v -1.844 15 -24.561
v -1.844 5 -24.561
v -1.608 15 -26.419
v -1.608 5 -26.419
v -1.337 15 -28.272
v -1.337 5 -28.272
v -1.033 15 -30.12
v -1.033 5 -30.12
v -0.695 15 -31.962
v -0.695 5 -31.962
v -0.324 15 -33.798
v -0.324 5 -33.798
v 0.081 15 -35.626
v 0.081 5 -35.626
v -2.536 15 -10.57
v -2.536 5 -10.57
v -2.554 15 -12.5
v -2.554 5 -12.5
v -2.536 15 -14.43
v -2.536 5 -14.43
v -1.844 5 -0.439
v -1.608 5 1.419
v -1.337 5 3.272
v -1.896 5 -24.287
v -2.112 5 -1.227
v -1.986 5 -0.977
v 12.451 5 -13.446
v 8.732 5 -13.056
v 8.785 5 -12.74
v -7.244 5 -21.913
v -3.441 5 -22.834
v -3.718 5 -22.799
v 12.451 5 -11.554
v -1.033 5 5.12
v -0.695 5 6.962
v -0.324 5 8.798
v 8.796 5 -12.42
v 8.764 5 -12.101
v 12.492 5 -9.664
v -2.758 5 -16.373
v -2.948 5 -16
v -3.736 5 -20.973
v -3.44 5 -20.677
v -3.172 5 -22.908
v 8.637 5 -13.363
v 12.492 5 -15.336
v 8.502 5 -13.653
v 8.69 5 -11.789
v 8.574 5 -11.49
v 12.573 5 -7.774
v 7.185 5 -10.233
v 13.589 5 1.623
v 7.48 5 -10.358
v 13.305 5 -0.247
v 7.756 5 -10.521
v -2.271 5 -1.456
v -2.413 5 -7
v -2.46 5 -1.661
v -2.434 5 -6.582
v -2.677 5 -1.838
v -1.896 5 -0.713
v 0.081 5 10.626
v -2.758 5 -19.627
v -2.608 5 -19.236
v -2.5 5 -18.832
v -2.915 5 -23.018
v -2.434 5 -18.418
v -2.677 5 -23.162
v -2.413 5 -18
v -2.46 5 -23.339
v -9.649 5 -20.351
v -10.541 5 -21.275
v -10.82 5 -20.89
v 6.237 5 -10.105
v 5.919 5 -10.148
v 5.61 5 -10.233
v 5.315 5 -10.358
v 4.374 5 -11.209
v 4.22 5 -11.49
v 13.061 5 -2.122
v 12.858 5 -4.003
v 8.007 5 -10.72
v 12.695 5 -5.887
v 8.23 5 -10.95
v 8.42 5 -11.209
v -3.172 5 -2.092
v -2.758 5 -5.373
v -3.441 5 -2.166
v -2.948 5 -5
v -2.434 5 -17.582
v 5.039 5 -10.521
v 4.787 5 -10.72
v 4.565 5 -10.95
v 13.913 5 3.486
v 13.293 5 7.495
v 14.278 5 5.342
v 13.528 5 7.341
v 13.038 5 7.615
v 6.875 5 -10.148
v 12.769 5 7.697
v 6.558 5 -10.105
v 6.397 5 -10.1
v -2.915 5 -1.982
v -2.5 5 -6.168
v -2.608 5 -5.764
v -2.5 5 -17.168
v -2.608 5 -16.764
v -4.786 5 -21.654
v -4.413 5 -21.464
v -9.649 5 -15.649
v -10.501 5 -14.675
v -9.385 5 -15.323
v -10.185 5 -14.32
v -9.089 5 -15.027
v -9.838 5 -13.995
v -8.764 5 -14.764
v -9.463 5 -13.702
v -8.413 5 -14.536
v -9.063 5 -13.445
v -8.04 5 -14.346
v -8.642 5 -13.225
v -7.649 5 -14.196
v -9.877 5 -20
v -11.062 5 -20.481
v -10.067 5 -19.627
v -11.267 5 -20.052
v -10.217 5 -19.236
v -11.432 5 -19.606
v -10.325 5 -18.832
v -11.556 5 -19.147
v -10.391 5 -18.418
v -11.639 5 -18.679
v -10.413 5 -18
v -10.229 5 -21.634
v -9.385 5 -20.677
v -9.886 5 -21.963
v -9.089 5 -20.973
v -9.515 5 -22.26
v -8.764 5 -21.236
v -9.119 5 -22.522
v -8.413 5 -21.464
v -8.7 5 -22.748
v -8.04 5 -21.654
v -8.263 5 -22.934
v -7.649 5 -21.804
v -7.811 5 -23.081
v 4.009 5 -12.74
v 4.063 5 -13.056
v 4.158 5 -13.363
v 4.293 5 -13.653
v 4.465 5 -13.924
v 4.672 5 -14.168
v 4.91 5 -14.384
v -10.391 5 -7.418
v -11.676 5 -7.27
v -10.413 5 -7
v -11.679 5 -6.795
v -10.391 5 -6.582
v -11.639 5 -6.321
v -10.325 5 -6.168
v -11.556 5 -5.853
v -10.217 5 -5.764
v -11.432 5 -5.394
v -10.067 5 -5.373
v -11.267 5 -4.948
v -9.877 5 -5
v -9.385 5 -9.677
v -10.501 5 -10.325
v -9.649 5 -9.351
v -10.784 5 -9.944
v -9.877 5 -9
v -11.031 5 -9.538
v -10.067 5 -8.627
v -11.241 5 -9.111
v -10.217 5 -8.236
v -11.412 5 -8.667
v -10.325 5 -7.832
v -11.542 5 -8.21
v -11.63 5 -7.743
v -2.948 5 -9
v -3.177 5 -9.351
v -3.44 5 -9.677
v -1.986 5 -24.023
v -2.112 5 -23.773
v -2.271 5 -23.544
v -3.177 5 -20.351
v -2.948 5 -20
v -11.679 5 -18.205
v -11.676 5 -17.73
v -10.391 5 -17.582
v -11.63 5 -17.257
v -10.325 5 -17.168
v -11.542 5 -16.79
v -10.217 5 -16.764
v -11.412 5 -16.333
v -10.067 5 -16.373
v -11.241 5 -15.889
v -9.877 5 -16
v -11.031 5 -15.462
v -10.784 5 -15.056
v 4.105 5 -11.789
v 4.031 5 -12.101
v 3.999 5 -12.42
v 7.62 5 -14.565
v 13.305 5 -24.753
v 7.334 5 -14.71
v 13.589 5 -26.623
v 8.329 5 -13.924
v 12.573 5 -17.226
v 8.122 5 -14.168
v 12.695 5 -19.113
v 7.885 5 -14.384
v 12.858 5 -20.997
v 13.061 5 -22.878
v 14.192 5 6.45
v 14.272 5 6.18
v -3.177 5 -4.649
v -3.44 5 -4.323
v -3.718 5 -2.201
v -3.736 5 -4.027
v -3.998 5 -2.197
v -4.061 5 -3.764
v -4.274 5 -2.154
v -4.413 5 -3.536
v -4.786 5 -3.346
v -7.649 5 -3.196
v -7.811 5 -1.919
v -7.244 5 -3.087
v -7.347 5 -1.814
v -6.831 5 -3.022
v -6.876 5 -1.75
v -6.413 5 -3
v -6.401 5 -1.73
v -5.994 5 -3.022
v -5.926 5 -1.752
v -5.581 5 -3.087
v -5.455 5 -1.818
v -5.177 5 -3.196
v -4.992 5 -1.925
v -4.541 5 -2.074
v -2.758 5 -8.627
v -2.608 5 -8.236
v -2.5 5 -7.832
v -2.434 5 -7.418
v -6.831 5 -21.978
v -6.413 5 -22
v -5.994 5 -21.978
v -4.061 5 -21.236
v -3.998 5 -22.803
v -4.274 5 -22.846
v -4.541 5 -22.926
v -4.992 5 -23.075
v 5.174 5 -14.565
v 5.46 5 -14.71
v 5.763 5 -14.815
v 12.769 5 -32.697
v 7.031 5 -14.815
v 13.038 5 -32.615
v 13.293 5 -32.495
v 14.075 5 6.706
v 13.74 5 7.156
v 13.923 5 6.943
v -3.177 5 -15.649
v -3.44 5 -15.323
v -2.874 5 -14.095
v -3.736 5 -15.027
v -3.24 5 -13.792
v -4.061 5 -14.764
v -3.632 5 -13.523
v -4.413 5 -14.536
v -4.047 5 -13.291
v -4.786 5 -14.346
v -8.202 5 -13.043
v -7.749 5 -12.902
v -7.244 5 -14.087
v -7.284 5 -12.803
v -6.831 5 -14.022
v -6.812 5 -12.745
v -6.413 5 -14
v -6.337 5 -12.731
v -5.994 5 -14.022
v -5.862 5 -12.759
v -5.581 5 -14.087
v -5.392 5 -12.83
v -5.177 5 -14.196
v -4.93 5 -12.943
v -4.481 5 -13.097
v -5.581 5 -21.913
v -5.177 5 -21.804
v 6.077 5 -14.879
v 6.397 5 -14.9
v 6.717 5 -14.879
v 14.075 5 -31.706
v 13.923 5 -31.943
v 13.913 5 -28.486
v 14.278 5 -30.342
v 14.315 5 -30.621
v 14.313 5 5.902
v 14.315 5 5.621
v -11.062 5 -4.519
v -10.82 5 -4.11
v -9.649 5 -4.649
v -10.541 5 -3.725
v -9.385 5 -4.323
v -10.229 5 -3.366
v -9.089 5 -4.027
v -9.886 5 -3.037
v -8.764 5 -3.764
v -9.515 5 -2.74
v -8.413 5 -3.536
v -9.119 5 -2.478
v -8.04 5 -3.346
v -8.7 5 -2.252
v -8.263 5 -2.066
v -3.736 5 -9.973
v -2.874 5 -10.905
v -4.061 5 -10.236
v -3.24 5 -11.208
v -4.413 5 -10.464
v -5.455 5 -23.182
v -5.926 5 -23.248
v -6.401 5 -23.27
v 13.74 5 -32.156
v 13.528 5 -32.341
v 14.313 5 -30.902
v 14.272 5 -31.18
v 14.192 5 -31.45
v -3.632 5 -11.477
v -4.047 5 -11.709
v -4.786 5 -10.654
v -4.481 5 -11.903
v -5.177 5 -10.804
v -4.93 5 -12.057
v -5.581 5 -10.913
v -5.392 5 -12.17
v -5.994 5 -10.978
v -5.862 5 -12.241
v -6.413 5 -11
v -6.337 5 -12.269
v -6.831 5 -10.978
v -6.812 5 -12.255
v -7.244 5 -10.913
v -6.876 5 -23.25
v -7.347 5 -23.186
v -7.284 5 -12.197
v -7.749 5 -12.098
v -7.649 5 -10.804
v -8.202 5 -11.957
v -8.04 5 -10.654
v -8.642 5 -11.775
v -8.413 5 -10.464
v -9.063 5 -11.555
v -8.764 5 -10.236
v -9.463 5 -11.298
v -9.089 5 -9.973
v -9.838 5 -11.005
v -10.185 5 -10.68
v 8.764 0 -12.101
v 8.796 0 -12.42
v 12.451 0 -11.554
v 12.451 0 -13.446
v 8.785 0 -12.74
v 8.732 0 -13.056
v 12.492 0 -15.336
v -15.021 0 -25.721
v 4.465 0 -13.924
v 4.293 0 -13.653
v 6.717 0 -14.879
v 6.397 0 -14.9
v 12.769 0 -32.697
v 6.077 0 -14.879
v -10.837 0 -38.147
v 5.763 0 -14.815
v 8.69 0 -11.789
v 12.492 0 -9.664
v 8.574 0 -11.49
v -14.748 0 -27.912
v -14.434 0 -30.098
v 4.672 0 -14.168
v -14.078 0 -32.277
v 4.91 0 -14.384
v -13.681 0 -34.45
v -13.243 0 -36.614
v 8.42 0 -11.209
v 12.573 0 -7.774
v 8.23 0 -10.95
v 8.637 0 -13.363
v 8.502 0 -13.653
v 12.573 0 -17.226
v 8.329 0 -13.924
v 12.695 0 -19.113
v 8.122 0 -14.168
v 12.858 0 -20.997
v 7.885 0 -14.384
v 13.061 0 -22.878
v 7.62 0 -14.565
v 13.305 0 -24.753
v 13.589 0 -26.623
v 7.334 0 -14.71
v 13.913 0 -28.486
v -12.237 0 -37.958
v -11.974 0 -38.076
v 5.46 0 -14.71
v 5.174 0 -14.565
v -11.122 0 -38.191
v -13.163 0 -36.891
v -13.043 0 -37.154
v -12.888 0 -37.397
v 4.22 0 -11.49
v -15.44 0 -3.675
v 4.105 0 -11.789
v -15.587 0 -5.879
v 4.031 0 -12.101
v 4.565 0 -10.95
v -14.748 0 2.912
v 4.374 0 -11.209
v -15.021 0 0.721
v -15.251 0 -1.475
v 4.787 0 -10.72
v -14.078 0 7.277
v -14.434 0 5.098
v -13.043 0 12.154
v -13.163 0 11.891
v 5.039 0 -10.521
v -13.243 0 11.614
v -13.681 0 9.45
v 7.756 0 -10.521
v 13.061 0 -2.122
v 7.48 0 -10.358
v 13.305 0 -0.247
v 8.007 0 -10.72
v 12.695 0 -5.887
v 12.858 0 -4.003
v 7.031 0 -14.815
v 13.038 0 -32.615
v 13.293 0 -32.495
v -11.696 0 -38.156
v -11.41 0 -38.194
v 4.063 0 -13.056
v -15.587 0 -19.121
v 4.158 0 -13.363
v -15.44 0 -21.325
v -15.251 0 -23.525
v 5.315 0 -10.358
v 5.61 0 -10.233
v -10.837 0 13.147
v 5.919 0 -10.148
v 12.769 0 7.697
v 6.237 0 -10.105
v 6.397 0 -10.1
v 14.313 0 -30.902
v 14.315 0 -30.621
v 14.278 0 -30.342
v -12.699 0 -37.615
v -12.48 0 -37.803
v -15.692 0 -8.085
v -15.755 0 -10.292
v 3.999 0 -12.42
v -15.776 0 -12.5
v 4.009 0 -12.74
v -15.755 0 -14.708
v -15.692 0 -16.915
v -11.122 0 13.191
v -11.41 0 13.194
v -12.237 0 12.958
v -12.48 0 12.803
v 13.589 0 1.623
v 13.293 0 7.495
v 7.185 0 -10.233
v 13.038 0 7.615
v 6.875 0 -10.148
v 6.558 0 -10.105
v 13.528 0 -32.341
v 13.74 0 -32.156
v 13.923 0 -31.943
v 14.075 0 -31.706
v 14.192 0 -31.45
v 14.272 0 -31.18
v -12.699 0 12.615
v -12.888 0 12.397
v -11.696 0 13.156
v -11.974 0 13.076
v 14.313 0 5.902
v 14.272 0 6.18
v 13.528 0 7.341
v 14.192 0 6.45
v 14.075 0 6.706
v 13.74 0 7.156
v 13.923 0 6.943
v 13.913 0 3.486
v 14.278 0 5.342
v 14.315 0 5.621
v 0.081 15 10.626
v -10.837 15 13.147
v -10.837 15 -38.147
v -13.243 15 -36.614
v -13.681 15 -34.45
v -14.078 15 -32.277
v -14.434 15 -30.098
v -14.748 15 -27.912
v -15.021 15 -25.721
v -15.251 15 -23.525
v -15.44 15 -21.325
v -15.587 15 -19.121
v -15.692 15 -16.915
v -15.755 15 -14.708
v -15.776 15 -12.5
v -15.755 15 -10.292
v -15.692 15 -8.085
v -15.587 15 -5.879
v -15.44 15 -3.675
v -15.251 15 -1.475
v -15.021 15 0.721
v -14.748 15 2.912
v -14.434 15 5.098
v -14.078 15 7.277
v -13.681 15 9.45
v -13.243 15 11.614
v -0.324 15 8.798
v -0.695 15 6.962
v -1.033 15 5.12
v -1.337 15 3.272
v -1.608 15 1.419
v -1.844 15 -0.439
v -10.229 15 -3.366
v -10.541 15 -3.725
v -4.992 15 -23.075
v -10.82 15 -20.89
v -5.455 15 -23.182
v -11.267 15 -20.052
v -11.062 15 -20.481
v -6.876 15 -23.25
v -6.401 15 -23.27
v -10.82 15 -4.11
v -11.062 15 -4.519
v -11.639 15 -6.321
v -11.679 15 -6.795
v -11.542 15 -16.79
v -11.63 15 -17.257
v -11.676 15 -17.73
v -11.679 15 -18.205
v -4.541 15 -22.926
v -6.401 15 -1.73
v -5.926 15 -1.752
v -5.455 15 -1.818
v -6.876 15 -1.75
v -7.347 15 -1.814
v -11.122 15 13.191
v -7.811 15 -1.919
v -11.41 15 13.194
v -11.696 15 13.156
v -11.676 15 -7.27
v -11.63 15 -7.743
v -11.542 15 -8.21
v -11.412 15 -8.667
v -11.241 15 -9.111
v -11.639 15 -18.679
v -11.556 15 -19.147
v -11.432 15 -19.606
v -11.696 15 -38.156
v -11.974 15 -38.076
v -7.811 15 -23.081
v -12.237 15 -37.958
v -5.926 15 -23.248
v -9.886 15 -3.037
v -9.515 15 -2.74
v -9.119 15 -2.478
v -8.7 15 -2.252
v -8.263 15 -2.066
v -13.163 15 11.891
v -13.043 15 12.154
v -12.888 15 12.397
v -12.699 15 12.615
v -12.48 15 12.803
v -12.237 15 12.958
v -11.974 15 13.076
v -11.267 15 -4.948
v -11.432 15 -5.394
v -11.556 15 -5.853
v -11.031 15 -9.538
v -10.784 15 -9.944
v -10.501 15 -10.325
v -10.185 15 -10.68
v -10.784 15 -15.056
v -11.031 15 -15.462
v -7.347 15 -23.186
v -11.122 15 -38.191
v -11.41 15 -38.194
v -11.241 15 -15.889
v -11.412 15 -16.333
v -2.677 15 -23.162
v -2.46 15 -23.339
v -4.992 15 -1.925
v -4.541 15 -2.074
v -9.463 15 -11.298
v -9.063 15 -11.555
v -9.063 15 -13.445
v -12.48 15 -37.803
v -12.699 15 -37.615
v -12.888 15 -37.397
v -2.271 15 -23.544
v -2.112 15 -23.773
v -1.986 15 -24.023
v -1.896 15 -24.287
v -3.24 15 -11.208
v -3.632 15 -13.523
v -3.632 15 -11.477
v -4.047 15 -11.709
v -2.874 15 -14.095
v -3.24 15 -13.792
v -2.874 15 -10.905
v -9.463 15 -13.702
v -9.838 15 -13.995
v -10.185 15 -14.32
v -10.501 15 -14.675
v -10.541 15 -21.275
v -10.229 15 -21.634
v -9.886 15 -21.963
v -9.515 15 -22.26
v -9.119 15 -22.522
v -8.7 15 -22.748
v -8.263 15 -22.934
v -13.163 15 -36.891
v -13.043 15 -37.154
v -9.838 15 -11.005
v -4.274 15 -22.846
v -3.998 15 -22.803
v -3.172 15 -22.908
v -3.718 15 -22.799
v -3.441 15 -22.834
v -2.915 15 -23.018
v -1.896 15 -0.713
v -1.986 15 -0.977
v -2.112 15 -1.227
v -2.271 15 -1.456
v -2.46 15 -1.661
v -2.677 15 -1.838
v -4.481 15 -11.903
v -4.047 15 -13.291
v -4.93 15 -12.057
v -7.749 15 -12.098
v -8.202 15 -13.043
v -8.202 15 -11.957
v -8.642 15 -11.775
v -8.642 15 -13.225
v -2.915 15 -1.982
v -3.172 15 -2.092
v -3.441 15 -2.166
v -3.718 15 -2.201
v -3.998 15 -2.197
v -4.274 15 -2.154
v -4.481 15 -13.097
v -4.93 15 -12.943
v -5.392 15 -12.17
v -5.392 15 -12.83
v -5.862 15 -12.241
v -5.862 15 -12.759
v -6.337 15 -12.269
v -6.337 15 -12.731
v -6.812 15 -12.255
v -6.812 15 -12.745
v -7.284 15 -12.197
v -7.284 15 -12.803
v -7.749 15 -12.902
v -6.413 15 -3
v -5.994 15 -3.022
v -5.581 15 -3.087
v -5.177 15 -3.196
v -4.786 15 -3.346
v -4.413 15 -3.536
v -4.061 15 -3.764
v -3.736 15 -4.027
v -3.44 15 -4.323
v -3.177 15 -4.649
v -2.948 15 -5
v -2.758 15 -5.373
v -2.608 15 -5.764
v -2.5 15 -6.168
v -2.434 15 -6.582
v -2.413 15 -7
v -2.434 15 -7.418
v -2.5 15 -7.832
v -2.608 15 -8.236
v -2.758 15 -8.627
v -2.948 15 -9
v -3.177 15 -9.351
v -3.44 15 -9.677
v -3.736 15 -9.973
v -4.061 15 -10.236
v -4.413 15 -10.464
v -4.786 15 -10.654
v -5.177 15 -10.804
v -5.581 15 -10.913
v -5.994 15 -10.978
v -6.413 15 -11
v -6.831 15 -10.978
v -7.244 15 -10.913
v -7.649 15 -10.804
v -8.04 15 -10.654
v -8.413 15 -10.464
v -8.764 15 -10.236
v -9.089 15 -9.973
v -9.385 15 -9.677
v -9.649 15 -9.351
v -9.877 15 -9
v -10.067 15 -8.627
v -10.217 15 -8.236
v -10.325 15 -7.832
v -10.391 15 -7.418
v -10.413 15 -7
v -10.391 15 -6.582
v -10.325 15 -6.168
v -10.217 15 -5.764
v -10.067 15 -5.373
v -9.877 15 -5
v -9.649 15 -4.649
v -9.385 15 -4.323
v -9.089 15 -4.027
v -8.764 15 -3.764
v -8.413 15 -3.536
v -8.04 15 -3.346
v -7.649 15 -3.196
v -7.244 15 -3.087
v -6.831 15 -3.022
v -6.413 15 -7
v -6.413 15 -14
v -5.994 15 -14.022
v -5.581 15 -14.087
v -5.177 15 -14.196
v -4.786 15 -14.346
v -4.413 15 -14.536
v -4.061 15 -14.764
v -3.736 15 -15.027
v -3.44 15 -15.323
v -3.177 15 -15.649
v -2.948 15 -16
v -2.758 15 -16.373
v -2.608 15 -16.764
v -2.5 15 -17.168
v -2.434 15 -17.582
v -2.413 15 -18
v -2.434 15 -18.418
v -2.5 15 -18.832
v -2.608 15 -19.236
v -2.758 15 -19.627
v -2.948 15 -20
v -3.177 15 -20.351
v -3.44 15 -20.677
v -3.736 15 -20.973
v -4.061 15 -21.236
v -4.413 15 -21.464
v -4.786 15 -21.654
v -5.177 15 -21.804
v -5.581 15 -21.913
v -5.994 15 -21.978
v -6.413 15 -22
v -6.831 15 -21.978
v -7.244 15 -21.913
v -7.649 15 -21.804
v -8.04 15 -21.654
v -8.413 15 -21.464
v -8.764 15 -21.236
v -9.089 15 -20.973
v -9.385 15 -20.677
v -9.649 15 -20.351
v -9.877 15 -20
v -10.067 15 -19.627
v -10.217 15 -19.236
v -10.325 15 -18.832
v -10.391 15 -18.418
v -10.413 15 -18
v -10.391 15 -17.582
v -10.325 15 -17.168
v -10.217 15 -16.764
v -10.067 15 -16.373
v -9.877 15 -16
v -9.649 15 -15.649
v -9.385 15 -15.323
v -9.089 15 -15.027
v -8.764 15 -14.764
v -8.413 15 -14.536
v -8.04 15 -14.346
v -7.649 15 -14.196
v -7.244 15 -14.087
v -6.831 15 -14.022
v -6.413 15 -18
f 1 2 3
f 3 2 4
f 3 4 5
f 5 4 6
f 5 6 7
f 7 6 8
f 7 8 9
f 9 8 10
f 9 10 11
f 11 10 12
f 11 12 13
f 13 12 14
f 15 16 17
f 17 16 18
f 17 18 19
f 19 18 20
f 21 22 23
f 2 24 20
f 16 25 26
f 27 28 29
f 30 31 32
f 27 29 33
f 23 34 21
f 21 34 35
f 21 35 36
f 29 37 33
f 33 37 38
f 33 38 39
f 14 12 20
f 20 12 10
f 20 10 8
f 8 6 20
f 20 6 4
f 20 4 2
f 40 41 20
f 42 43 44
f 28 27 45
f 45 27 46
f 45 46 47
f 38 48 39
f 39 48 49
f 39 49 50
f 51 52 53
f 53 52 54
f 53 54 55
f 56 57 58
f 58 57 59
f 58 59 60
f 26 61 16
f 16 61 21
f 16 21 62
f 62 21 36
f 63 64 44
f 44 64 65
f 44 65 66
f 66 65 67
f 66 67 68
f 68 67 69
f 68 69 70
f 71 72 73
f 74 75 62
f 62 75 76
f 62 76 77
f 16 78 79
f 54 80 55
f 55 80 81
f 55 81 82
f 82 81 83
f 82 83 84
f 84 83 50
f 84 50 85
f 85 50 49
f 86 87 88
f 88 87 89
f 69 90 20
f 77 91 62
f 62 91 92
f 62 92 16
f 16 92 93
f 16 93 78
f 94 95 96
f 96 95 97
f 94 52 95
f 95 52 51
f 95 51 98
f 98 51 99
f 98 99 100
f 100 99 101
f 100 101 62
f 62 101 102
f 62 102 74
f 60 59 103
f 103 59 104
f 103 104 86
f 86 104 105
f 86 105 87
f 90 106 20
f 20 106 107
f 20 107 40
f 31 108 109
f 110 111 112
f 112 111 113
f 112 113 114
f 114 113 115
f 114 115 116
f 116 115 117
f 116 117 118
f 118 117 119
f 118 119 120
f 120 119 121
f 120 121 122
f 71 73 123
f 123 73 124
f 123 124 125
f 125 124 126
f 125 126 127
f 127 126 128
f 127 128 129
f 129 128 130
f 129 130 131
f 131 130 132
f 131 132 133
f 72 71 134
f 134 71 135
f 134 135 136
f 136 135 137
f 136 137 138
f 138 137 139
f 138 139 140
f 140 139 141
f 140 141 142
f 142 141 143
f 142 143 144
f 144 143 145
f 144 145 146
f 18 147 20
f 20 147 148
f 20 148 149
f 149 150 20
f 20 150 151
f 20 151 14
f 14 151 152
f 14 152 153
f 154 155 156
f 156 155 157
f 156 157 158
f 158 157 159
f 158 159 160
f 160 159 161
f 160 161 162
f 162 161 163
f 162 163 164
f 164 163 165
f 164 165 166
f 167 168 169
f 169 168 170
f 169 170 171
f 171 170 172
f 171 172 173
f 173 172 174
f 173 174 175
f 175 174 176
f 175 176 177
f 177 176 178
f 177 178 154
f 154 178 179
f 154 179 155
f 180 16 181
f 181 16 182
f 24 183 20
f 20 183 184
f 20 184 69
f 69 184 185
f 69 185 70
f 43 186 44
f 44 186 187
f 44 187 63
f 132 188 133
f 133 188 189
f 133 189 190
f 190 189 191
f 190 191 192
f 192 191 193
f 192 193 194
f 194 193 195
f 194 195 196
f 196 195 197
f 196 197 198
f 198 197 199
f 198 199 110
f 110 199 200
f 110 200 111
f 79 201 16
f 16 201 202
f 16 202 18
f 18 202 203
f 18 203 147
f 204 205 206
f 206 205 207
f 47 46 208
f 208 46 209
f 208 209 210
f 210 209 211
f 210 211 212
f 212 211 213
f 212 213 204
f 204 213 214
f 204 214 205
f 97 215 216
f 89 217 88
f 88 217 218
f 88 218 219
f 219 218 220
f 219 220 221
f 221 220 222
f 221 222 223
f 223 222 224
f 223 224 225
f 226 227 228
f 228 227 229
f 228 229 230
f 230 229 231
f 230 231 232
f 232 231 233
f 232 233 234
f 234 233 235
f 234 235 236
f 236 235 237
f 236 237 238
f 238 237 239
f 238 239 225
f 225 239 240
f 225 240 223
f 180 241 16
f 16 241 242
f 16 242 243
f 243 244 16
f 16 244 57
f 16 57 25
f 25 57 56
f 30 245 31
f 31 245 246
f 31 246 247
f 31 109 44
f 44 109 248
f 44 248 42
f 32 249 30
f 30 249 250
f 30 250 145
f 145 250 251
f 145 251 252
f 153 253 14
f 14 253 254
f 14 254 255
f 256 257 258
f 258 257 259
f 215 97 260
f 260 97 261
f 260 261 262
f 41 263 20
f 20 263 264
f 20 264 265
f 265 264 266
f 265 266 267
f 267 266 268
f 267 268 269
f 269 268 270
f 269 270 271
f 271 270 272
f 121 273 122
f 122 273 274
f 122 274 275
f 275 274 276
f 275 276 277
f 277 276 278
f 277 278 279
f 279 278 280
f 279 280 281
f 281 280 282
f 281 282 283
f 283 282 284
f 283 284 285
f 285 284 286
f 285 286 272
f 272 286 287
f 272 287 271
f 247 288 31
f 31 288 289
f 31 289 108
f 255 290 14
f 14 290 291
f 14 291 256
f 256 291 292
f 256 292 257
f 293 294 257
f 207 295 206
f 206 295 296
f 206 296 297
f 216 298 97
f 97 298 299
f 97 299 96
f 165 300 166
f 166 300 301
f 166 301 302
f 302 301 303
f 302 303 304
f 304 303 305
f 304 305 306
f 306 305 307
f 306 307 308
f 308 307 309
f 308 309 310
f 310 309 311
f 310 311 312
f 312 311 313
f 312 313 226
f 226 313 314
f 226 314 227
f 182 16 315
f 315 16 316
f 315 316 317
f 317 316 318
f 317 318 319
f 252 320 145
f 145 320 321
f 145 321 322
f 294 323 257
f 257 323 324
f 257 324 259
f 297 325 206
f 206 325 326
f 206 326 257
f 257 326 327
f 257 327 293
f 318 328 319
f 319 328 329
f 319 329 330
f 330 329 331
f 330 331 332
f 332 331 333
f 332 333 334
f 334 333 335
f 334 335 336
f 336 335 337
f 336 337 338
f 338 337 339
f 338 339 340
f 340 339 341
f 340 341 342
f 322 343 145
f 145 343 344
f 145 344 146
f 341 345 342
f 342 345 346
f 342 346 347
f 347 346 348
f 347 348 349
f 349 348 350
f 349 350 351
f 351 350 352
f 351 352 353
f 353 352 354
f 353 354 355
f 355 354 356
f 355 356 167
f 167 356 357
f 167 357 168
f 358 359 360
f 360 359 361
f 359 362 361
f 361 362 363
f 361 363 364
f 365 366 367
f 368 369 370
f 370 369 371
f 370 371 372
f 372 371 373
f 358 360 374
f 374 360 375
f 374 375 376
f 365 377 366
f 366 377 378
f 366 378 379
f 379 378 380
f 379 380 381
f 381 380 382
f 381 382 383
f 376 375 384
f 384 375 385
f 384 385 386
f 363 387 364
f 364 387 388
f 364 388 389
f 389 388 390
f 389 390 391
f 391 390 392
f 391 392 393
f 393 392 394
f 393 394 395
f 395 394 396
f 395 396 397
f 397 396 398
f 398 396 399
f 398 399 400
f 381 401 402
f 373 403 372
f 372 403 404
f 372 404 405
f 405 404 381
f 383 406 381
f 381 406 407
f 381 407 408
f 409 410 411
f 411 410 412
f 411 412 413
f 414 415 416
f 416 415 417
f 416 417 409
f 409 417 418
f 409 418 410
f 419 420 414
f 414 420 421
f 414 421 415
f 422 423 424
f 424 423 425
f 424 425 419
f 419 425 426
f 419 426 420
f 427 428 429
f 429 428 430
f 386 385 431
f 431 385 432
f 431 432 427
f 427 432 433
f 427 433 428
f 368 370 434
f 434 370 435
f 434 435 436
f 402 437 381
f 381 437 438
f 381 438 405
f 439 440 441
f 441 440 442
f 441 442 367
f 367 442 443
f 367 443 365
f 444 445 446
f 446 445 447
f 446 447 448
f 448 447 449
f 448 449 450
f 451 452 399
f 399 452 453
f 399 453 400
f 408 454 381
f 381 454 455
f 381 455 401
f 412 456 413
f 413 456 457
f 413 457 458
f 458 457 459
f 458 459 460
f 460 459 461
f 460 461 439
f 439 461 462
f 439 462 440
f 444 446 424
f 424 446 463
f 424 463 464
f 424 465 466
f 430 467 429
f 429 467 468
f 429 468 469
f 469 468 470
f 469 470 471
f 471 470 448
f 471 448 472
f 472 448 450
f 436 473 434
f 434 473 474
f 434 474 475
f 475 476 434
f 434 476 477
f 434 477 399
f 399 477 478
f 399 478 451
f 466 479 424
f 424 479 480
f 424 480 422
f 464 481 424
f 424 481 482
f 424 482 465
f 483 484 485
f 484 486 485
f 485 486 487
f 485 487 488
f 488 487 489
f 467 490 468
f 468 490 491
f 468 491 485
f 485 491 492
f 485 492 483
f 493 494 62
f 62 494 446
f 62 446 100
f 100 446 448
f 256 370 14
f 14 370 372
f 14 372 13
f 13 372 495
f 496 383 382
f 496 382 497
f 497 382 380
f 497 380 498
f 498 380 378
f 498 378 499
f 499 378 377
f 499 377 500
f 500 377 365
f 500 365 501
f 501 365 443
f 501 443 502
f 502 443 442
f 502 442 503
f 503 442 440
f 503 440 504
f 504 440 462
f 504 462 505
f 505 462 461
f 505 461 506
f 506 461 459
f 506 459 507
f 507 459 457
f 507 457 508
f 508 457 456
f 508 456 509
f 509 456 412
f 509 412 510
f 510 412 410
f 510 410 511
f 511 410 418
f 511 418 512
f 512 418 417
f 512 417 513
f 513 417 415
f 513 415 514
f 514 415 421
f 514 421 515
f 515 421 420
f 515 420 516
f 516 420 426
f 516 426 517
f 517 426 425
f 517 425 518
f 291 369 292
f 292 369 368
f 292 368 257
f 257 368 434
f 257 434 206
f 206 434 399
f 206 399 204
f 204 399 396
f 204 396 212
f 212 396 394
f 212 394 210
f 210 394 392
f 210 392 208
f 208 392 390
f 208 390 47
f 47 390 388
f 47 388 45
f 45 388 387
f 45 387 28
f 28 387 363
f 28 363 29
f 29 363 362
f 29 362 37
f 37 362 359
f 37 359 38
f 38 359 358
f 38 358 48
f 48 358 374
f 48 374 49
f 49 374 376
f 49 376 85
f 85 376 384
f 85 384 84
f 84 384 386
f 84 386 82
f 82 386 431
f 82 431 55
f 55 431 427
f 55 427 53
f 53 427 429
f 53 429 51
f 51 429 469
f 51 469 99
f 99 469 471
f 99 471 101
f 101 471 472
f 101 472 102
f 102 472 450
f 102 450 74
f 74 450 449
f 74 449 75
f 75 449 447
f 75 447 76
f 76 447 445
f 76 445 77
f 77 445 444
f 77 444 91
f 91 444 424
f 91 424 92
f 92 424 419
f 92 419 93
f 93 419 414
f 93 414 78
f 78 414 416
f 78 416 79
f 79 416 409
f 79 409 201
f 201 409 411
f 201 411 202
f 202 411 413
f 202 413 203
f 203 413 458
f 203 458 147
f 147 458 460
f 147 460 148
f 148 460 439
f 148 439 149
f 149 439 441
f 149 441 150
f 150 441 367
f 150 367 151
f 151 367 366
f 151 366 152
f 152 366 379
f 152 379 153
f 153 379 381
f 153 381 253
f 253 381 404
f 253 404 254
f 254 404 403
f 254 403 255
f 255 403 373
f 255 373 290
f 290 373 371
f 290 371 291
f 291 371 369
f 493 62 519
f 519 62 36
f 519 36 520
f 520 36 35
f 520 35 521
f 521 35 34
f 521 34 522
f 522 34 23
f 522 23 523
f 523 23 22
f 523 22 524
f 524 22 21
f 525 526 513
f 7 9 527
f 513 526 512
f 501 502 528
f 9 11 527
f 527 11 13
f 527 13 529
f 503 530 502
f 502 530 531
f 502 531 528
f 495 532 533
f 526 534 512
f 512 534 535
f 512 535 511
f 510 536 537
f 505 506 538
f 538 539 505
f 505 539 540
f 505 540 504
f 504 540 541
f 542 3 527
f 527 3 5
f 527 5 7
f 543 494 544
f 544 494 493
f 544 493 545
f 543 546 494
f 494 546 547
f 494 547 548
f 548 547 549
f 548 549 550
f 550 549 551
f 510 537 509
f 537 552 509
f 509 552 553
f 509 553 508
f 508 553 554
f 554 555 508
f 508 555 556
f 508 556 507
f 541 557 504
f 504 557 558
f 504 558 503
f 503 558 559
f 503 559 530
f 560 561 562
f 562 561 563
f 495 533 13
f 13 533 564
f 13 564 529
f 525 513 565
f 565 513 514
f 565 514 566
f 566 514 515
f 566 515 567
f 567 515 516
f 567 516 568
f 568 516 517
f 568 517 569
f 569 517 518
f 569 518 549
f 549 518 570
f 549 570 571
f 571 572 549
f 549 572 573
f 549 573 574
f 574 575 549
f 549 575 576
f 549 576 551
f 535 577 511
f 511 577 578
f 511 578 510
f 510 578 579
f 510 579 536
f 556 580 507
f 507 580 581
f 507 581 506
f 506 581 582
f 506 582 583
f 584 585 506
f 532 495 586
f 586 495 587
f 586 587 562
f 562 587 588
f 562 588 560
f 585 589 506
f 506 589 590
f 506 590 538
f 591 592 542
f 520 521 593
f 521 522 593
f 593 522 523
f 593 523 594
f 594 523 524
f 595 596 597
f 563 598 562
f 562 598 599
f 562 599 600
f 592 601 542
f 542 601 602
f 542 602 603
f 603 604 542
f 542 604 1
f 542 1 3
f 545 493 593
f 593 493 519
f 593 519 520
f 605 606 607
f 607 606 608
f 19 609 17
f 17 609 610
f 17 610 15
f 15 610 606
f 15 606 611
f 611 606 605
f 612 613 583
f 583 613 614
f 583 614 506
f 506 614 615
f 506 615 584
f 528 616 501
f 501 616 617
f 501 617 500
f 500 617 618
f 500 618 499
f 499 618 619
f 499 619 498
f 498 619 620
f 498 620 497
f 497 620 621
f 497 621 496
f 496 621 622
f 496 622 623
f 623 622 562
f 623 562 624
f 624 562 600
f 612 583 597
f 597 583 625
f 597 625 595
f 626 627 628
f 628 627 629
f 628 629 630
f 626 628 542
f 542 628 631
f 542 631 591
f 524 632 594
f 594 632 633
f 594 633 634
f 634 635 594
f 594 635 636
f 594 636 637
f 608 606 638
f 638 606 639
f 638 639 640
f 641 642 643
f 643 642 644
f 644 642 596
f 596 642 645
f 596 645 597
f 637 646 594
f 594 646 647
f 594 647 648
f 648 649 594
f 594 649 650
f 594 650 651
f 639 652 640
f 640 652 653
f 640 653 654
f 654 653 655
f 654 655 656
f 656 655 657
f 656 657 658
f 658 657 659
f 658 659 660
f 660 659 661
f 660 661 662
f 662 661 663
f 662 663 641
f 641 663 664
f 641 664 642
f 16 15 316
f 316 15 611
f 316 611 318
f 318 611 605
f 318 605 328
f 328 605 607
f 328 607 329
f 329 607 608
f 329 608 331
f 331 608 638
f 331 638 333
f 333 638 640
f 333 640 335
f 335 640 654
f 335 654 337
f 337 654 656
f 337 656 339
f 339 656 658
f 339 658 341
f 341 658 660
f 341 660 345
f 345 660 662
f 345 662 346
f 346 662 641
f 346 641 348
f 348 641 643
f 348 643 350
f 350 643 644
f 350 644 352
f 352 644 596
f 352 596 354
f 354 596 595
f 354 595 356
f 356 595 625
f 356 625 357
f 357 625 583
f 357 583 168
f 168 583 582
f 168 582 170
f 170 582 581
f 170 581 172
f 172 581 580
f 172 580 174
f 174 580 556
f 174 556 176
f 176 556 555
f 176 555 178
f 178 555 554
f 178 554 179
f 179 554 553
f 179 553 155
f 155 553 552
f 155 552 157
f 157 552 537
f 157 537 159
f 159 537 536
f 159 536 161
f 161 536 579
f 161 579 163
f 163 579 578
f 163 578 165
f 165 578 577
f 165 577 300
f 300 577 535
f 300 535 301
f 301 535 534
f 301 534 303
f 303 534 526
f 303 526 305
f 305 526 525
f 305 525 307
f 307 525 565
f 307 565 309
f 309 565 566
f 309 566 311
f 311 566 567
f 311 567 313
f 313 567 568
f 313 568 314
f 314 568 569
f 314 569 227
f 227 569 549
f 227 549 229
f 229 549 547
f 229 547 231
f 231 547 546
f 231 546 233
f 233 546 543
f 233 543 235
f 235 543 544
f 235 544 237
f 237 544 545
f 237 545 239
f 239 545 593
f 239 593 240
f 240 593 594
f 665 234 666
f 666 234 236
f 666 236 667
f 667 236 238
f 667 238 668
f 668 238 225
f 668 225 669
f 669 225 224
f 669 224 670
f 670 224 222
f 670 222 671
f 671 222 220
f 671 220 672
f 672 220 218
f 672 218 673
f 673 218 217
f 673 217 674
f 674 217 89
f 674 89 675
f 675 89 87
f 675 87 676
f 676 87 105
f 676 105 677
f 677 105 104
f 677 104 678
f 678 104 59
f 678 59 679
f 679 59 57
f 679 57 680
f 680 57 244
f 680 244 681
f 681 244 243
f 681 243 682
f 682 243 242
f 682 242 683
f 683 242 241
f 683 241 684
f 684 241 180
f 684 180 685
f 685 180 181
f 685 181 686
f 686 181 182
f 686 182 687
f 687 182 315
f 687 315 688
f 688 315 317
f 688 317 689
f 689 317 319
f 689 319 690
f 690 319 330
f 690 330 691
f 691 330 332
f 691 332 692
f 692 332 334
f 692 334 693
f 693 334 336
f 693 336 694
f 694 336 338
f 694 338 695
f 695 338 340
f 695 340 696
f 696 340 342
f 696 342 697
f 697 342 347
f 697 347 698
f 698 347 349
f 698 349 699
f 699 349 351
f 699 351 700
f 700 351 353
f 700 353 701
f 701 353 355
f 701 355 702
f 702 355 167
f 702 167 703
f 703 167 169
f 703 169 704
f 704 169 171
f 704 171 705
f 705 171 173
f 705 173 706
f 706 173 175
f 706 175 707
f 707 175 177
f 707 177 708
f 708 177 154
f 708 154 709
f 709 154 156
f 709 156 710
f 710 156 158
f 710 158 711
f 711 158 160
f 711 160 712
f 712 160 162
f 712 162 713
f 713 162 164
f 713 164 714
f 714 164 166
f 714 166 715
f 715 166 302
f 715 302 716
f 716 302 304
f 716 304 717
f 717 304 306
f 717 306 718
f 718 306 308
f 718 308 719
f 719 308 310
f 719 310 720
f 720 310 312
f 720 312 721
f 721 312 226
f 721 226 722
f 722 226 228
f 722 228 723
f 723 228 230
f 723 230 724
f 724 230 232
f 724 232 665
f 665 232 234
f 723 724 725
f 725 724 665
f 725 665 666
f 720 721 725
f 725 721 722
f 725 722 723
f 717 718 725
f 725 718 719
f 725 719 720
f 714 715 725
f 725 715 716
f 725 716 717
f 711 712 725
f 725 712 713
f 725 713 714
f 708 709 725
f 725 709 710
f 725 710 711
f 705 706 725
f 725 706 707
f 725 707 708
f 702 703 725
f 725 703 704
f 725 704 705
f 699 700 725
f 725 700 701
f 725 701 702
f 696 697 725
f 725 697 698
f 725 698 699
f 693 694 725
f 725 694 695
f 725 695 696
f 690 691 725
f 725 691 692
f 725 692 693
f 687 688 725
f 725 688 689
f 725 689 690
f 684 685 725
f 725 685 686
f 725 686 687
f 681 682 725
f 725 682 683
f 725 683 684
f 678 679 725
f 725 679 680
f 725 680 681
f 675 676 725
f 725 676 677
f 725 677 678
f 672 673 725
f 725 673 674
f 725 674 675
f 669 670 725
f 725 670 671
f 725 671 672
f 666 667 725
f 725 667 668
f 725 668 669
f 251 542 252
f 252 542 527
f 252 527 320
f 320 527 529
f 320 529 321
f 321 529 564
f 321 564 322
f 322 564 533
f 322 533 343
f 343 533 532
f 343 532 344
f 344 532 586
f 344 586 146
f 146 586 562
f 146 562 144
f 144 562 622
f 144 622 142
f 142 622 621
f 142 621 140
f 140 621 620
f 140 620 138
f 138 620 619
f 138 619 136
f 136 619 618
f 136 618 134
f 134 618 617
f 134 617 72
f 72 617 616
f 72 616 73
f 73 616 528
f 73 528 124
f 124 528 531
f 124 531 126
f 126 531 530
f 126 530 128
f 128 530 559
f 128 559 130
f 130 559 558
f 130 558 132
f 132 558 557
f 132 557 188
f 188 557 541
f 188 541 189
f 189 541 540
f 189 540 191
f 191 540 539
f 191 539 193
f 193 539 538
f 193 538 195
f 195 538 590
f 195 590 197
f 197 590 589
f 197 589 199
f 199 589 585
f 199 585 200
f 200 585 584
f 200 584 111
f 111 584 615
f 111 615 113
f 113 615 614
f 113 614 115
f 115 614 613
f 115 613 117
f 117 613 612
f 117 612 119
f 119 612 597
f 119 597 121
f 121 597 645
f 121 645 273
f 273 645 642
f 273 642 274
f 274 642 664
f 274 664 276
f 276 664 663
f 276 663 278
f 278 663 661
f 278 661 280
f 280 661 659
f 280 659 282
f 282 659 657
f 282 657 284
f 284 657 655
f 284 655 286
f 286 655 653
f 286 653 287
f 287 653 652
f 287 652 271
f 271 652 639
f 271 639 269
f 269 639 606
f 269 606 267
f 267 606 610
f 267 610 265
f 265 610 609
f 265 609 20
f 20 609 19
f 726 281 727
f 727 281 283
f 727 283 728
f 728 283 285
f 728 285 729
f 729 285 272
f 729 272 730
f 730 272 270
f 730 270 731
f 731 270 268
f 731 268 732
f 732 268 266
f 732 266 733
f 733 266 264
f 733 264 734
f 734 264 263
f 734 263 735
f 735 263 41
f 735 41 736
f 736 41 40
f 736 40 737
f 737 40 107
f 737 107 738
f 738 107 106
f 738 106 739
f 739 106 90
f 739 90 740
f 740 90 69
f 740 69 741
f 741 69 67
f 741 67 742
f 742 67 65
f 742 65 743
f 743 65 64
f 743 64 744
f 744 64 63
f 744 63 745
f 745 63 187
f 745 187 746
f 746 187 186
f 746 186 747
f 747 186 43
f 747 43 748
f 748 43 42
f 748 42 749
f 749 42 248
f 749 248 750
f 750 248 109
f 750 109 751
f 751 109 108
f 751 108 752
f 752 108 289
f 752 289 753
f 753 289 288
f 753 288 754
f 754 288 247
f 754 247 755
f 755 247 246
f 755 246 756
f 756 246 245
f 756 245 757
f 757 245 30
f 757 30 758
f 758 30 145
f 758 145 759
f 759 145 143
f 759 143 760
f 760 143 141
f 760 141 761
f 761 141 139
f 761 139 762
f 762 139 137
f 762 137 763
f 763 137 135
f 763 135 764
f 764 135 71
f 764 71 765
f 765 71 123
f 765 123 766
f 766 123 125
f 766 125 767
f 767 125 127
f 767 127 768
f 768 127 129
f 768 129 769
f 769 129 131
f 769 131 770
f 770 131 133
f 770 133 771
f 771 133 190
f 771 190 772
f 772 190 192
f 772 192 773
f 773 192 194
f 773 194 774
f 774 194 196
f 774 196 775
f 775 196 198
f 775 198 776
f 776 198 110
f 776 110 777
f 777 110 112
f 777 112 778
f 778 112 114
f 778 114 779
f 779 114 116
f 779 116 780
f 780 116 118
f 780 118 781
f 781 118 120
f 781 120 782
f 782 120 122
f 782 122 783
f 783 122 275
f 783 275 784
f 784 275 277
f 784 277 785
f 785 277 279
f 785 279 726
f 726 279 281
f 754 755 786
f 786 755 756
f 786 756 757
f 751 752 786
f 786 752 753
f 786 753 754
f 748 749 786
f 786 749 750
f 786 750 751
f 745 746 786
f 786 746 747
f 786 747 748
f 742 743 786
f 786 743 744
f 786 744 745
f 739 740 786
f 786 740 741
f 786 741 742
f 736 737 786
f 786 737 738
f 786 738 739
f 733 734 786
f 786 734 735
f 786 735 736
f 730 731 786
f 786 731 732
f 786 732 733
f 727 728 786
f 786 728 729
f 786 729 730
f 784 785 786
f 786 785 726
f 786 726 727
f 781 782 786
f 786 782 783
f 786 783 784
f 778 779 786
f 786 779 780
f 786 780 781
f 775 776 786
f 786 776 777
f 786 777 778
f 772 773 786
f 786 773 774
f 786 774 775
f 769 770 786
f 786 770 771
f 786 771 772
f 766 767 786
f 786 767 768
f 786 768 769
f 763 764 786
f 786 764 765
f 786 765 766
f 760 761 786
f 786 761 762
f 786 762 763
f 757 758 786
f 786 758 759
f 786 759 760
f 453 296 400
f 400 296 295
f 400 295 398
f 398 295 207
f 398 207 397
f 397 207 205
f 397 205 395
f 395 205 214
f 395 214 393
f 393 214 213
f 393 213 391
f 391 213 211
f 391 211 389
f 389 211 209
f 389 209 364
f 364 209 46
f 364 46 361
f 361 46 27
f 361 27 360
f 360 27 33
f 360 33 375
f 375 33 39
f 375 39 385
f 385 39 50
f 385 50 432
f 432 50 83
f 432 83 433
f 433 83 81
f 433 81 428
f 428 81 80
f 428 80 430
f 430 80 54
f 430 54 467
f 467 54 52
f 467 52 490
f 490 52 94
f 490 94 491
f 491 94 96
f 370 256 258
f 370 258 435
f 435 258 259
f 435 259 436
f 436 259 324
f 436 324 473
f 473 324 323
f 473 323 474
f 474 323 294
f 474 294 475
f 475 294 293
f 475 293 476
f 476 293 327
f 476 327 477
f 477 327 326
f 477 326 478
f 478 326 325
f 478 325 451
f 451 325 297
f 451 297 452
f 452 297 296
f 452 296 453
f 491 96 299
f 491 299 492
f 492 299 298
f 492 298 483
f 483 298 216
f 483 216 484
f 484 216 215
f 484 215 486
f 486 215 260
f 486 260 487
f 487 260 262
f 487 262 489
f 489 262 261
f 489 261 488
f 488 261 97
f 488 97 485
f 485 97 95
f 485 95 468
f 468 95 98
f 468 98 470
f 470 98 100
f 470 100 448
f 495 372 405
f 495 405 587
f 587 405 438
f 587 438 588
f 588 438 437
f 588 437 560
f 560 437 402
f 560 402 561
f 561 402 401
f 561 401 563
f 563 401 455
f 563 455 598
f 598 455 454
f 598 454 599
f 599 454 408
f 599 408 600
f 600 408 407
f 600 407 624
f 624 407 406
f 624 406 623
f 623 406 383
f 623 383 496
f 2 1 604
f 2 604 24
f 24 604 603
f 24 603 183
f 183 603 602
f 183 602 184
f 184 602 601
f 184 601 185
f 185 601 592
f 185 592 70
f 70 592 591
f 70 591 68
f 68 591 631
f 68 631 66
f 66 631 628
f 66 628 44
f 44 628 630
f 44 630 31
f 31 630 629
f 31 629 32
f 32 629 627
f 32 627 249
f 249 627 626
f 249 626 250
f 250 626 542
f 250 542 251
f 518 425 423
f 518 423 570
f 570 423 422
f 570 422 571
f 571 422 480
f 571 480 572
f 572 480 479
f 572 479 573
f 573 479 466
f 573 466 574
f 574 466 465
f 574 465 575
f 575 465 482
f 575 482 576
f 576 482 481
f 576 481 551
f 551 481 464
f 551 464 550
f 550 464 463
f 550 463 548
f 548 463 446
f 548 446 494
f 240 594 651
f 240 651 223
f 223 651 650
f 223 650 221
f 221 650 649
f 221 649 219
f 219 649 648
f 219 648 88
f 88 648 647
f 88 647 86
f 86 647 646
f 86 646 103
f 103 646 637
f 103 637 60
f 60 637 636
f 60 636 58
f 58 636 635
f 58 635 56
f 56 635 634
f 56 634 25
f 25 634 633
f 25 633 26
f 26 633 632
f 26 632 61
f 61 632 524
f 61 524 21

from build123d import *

# Parameters (mm, degrees)
SKETCH2_R           = 2.4
BOSS_EXTRUDE1_DEPTH = 5
BOSS_EXTRUDE2_DEPTH = 10
SKETCH4_R           = 5.27
SKETCH4_R_2         = 4
CUT_EXTRUDE1_DEPTH  = 10
CUT_EXTRUDE2_DEPTH  = 6
FILLET1_R           = 2


with BuildPart() as part:
    # Sketch2 → Boss-Extrude1 (new body)
    with BuildSketch(Plane(origin=(0, 0, 0), x_dir=(1, 0, 0), z_dir=(0, 1, 0))):
        with BuildLine():
            Line((100.252220984, 12.5), (-12.802476078, 38.600733409))
            ThreePointArc((-12.802476078, 38.600733409), (-15.776279016, 12.5), (-12.802476078, -13.600733409))
            Line((-12.802476078, -13.600733409), (100.252220984, 12.5))
        make_face()
        with Locations((6.397320984, 12.5)):
            Circle(SKETCH2_R, mode=Mode.SUBTRACT)
    extrude(amount=BOSS_EXTRUDE1_DEPTH)

    # Sketch3 → Boss-Extrude2 (add)
    with BuildSketch(Plane(origin=(0, 5, 0), x_dir=(1, 0, 0), z_dir=(0, 1, 0))):
        with BuildLine():
            Line((0.080644919, -10.626430568), (-12.802476078, -13.600733409))
            ThreePointArc((-12.802476078, -13.600733409), (-15.776279016, 12.5), (-12.802476078, 38.600733409))
            Line((-12.802476078, 38.600733409), (0.080644919, 35.626430568))
            ThreePointArc((0.080644919, 35.626430568), (-2.554279016, 12.5), (0.080644919, -10.626430568))
        make_face()
    extrude(amount=BOSS_EXTRUDE2_DEPTH)

    # Sketch4 → Cut-Extrude1 (cut)
    with BuildSketch(Plane(origin=(0, 15, 0), x_dir=(1, 0, 0), z_dir=(0, 1, 0))):
        with Locations((-6.412573781, 7)):
            Circle(SKETCH4_R)
        with Locations((-6.412573781, 7)):
            Circle(SKETCH4_R_2, mode=Mode.SUBTRACT)
    cut_extrude1 = extrude(amount=-CUT_EXTRUDE1_DEPTH, mode=Mode.SUBTRACT)

    # Mirror1: Cut-Extrude1 across plane
    add(cut_extrude1.mirror(Plane.XY.offset(-12.5)), mode=Mode.SUBTRACT)

    # Sketch5 → Cut-Extrude2 (cut, through all)
    with BuildSketch(Plane(origin=(0, 5, 0), x_dir=(1, 0, 0), z_dir=(0, 1, 0))):
        with BuildLine():
            Line((14.696195891, -7.252164753), (100.252220984, 12.5))
            Line((100.252220984, 12.5), (14.696195891, 32.252164753))
            ThreePointArc((14.696195891, 32.252164753), (12.445720984, 12.5), (14.696195891, -7.252164753))
        make_face()
    extrude(amount=-CUT_EXTRUDE2_DEPTH, mode=Mode.SUBTRACT)

    # Fillet1
    fillet1_edges = [part.edges().sort_by_distance(p)[0] for p in [
        (-2.189516169, 10, -3.847432094),
        (-2.189516169, 10, -21.152567906),
        (-12.802476078, 7.5, 13.600733409),
        (14.696195891, 2.5, -32.252164753),
        (-12.802476078, 7.5, -38.600733409),
        (14.696195891, 2.5, 7.252164753),
    ]]
    fillet(fillet1_edges, radius=FILLET1_R)


solid = part.part
